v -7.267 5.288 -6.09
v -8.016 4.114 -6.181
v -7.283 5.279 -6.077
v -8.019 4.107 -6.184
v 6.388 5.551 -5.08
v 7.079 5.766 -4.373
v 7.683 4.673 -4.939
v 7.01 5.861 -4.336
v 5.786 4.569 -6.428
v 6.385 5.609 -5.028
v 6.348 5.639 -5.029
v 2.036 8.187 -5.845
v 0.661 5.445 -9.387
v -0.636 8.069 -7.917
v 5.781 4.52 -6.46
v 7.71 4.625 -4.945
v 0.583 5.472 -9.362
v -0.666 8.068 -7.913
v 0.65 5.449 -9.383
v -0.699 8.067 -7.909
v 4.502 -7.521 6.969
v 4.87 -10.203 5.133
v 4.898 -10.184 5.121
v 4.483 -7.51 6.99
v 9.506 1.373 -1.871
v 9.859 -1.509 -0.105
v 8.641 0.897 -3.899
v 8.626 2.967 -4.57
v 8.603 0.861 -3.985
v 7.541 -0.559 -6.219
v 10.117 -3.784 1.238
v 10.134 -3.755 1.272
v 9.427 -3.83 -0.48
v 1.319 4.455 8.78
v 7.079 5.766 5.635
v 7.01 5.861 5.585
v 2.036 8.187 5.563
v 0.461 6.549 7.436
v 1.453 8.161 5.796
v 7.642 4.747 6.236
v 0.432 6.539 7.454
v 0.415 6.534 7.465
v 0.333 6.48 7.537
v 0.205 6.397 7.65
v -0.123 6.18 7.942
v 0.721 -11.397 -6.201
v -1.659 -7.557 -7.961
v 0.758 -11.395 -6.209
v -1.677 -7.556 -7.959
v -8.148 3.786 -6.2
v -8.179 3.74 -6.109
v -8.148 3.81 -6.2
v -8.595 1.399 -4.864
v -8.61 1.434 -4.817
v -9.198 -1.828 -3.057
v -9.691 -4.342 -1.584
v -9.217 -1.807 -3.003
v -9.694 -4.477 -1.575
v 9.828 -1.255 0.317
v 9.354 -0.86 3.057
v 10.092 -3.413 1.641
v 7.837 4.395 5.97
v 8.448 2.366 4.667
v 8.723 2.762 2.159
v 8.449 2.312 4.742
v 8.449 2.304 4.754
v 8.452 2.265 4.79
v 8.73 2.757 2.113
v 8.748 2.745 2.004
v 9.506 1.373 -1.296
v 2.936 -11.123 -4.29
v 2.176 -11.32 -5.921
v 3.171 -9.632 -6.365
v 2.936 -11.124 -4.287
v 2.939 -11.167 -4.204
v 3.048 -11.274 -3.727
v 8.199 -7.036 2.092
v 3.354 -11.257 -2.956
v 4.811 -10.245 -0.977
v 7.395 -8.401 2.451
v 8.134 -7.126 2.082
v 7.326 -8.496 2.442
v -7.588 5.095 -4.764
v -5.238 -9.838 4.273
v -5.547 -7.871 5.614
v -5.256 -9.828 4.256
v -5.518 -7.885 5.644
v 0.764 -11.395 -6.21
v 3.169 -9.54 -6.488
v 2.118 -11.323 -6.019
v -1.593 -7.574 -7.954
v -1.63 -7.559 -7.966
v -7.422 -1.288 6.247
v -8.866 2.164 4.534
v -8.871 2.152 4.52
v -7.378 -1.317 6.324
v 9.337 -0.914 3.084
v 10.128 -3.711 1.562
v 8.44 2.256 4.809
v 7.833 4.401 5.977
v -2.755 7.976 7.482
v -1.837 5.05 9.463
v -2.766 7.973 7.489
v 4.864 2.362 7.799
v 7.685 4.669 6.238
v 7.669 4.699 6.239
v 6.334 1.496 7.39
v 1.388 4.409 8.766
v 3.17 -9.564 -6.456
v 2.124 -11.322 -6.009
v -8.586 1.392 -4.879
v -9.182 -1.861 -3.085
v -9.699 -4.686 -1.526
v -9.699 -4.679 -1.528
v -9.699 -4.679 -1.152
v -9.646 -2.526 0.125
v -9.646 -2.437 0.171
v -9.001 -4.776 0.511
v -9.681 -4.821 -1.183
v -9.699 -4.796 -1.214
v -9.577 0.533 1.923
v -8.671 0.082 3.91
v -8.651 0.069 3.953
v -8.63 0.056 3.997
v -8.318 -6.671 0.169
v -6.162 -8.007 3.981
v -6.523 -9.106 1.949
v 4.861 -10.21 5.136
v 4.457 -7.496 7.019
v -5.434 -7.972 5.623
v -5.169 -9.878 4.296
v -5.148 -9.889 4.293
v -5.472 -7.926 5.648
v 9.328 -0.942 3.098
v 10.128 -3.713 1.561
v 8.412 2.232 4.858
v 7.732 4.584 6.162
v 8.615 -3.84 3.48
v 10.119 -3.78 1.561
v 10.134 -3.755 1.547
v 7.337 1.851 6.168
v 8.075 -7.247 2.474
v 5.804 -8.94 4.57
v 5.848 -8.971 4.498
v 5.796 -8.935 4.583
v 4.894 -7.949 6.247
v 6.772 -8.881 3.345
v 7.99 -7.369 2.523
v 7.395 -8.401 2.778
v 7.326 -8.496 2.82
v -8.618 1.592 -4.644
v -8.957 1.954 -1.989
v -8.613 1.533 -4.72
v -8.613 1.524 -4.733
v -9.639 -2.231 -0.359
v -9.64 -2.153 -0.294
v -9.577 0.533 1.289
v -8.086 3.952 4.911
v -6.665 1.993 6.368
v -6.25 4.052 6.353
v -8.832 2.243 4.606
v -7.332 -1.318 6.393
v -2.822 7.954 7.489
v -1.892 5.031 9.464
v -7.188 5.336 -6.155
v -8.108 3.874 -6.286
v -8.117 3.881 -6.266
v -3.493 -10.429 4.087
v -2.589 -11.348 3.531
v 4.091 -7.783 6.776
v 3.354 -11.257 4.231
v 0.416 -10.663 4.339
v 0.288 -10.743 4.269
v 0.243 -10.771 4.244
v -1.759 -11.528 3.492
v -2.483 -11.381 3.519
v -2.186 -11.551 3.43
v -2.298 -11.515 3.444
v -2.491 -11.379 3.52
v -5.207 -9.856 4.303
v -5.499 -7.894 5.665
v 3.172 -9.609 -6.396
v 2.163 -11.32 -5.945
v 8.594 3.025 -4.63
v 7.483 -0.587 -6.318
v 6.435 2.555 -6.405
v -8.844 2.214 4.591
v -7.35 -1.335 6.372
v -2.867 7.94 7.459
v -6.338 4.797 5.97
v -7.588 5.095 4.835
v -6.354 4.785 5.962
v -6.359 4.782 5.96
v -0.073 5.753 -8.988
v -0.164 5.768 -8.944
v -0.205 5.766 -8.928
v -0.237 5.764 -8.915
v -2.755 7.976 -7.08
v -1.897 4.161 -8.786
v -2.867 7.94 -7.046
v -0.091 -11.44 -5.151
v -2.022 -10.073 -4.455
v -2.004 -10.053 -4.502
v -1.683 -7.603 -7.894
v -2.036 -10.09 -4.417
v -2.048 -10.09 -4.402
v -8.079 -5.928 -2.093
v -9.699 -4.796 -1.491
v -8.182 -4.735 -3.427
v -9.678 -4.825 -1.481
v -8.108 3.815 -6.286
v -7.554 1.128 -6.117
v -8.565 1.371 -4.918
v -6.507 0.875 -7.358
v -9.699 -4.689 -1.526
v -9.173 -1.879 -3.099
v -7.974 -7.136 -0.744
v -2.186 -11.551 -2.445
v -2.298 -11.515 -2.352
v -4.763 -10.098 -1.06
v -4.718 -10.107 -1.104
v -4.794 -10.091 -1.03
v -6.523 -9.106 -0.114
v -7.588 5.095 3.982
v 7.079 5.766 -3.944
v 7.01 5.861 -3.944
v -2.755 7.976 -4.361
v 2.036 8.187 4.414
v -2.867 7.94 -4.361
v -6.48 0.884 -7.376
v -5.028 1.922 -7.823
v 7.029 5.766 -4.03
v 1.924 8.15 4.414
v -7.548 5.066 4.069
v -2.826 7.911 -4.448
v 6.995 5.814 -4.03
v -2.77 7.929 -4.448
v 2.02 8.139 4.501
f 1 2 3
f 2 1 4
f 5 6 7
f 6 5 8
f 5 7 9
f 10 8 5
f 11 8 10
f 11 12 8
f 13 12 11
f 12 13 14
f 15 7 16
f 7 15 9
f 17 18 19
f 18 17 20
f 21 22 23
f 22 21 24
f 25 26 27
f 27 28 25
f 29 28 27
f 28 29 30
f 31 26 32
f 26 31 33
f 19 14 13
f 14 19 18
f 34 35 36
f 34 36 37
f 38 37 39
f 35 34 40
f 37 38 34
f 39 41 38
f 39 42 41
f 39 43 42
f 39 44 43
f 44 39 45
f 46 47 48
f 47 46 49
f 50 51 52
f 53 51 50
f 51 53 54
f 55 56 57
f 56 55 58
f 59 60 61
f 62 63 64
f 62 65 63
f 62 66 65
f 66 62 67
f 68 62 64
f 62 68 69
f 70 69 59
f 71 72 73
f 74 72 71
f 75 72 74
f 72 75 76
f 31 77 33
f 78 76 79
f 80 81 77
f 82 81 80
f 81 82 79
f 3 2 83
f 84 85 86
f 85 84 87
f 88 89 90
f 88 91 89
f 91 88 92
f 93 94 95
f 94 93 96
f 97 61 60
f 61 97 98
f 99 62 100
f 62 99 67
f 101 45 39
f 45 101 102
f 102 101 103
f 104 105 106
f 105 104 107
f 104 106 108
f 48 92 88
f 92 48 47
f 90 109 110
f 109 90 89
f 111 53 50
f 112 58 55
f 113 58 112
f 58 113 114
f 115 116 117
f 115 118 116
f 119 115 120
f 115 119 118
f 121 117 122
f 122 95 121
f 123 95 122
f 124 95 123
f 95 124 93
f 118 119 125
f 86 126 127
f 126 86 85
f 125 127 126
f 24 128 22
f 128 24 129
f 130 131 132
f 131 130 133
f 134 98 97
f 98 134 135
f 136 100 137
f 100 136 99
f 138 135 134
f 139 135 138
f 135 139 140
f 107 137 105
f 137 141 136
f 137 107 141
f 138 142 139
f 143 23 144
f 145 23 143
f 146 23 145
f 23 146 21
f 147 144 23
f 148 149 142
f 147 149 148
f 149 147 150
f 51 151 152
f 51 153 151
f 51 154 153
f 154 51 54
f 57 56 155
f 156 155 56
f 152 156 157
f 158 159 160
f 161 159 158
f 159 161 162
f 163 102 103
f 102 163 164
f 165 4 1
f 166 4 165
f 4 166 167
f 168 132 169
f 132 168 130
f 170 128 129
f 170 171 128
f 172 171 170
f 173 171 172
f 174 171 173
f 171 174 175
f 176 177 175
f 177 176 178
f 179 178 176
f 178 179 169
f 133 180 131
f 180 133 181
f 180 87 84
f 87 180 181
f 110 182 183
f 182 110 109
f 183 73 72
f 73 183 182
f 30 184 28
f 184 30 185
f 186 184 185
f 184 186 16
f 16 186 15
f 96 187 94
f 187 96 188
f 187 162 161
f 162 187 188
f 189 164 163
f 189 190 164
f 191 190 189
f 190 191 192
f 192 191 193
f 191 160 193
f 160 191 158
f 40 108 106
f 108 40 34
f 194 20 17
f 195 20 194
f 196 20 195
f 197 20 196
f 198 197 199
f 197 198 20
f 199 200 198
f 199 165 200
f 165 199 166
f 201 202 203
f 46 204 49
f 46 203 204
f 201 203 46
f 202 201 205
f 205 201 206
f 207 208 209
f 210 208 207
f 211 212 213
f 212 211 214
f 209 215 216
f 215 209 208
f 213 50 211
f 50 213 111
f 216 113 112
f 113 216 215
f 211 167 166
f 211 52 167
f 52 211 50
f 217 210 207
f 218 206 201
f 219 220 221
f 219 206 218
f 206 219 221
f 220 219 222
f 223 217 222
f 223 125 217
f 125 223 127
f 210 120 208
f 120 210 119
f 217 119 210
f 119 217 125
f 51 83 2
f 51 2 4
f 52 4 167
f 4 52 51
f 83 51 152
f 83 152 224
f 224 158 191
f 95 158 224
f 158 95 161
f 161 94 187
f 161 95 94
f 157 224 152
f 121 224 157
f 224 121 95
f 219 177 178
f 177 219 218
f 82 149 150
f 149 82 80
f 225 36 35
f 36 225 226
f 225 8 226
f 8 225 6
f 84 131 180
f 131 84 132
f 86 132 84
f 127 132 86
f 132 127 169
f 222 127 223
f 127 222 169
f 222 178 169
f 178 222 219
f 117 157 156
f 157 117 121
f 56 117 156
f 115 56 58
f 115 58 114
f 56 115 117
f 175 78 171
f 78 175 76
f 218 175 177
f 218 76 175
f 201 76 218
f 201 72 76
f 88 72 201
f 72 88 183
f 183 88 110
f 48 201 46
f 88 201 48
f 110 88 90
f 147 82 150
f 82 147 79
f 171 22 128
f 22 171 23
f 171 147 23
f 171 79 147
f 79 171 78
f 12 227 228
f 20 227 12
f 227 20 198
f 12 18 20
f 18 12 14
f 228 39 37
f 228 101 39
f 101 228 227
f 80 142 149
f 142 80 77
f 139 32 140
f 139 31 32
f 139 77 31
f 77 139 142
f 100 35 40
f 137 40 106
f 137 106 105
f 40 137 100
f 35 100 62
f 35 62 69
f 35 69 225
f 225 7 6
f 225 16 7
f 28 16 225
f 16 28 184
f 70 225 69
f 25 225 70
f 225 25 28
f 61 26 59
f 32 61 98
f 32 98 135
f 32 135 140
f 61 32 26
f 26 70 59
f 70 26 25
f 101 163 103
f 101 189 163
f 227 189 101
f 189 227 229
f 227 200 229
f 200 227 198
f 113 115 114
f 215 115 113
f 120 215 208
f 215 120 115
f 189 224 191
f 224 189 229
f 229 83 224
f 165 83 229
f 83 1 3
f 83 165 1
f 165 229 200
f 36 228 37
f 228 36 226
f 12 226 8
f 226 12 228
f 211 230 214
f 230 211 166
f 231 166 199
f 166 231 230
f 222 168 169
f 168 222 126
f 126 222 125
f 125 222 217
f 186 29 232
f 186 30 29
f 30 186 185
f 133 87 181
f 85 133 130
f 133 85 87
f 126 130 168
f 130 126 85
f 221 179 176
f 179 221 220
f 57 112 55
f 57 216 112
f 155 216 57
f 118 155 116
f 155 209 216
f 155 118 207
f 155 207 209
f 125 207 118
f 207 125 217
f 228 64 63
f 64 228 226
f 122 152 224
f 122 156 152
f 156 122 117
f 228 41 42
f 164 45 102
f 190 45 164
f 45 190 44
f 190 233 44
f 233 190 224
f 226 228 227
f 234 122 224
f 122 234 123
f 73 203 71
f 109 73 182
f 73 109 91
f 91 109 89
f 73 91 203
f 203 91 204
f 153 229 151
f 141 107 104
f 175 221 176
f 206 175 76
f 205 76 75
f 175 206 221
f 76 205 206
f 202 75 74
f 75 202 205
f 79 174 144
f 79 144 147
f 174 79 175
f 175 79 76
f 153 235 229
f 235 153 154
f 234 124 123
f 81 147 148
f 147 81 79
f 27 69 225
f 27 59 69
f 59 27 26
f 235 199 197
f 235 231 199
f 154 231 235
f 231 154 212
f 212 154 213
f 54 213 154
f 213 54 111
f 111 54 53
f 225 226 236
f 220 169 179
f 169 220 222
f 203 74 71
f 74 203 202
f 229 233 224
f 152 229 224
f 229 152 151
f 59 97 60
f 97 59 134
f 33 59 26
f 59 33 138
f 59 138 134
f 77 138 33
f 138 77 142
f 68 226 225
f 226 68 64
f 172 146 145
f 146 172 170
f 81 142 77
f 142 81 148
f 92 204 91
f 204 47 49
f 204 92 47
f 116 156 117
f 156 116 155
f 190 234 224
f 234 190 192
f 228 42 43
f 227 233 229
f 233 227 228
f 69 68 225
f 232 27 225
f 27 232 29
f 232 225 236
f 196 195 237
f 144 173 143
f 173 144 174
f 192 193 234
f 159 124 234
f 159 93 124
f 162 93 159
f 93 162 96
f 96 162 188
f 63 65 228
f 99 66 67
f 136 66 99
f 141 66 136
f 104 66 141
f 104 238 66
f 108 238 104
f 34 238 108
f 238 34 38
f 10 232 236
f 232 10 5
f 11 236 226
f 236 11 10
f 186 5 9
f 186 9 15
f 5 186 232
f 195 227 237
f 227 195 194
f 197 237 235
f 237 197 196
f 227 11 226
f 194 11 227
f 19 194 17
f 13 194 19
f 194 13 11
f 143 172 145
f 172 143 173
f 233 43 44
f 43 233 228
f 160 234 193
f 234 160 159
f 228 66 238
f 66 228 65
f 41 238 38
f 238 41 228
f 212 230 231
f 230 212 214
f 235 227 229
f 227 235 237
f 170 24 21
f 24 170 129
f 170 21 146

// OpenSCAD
// Auto-generated OpenSCAD file

    inner_points = 10*[[-0.9496117063645658, 0.04744255494879848, -0.4691531418453987], [1.0033624630947084, -0.3755390051682693, -0.3856157656249948], [-0.2785657017526601, 0.7881225693198912, -0.43613229985679836], [-0.6441706262468343, -0.9047282394808283, -0.460405295723797], [0.697921382976977, 0.5766317892613573, -0.3943636117465964], [0.33231645848280283, -1.1162190195393622, -0.41863660761359506], [-0.7507105153515918, 0.5036271349789806, 0.39821871909793793], [-0.961792616925356, -0.4737407351799904, 0.3842046984000876], [0.9406147283349547, 0.13731435858522523, 0.47056420907030583], [0.7295326267611906, -0.8400535115737459, 0.4565501883724555], [0.2004931572785636, 0.8091546818615886, 0.44139847443304703], [-0.22167104586896497, -1.1455810584563535, 0.4133704330373464], [-0.4865502109048858, -0.3364700228427917, -1.2680180766347915], [0.48993687382475126, -0.5479608029013256, -1.2262493885245895], [0.18449579370701985, 0.40420999152830095, -1.2349972346461915], [-0.22268754129996676, 0.3775482624765989, 1.2380376619553881], [-0.43376964287373104, -0.5998196076823722, 1.2240236412575376], [0.5174340297564245, -0.29429206079976433, 1.2672033965926468]];

    outer_points = 10*[[-0.1619876991428545, 0.42727685980119834, 0.9870193373470707], [0.1201169529545242, 0.42727685980119834, -0.992984946806127], [0.7648573506247376, 0.4700858108095228, 0.6140238314292694], [-0.9477804228617573, 0.3844679087928739, 0.370012701188273], [0.9059096766734269, 0.4700858108095228, -0.37597831064732945], [-0.806728096813068, 0.3844679087928739, -0.6199894408883259], [0.3931764152464893, -0.40256110041281673, 0.930789755433826], [-0.5956154643002599, -0.45199261918957995, 0.7899098637039218], [0.6374862104885902, -0.40256110041281673, -0.7839442542448654], [-0.35130566905815896, -0.45199261918957995, -0.9248241459747696], [1.0097272526409142, -0.3778453410244351, 0.14386269645943234], [-0.967856506452584, -0.47670837857796156, -0.13789708700037592], [-0.4168583108991429, 1.228505635767035, 0.44565677877170834], [-0.27580598485045354, 1.228505635767035, -0.5443453633048905], [0.5099867388684493, 1.2713145867753595, 0.07266127285390714], [0.5145701595267401, -1.2180595267147616, 0.36490471803782565], [-0.47422172002000895, -1.2674910454915247, 0.2240248263079215], [0.14232911737441603, -1.2427752861031431, -0.5629022326664721]];

    // Convex hull for inner set (I)
    module inner_hull() {
        hull() {
            for (p = inner_points) {
                translate(p) sphere(r=0.1);
            }
        }
    }

    // Convex hull for outer set (O) minus inner hull (O \ I)
    module outer_minus_inner() {
        difference() {
            hull() {
                for (p = outer_points) {
                    translate(p) sphere(r=0.1);
                }
            }
            inner_hull(); // Subtract inner hull
        }
    }

    // Convex hull for outer set (O) minus all translated inner hulls
    module outer_minus_AllTranslationInner() {
        difference() {
            hull() {
                for (p = outer_points) {
                    translate(p) sphere(r=0.1);
                }
            }
            hull() {
                translate([0,0,50]) inner_hull();
                translate([0,0,-50]) inner_hull();
            }; // Subtract translated inner hulls
        }
    }

    // Difference between outer_minus_inner and outer_minus_AllTranslationInner
    module outer_minus_inner_diff() {
        difference() {
            // Outer minus inner
            difference() {
                hull() {
                    for (p = outer_points) {
                        translate(p) sphere(r=0.1);
                    }
                }
                inner_hull();
            }

            // Subtract Outer minus AllTranslationInner
            difference() {
                hull() {
                    for (p = outer_points) {
                        translate(p) sphere(r=0.1);
                    }
                }
                hull() {
                    translate([0,0,50]) inner_hull();
                    translate([0,0,-50]) inner_hull();
                };
            }
        }
    }

    // Rendering all with colors applied
    color([1, 1, 0, 1]) outer_minus_inner_diff(); // Opaque yellow
    
